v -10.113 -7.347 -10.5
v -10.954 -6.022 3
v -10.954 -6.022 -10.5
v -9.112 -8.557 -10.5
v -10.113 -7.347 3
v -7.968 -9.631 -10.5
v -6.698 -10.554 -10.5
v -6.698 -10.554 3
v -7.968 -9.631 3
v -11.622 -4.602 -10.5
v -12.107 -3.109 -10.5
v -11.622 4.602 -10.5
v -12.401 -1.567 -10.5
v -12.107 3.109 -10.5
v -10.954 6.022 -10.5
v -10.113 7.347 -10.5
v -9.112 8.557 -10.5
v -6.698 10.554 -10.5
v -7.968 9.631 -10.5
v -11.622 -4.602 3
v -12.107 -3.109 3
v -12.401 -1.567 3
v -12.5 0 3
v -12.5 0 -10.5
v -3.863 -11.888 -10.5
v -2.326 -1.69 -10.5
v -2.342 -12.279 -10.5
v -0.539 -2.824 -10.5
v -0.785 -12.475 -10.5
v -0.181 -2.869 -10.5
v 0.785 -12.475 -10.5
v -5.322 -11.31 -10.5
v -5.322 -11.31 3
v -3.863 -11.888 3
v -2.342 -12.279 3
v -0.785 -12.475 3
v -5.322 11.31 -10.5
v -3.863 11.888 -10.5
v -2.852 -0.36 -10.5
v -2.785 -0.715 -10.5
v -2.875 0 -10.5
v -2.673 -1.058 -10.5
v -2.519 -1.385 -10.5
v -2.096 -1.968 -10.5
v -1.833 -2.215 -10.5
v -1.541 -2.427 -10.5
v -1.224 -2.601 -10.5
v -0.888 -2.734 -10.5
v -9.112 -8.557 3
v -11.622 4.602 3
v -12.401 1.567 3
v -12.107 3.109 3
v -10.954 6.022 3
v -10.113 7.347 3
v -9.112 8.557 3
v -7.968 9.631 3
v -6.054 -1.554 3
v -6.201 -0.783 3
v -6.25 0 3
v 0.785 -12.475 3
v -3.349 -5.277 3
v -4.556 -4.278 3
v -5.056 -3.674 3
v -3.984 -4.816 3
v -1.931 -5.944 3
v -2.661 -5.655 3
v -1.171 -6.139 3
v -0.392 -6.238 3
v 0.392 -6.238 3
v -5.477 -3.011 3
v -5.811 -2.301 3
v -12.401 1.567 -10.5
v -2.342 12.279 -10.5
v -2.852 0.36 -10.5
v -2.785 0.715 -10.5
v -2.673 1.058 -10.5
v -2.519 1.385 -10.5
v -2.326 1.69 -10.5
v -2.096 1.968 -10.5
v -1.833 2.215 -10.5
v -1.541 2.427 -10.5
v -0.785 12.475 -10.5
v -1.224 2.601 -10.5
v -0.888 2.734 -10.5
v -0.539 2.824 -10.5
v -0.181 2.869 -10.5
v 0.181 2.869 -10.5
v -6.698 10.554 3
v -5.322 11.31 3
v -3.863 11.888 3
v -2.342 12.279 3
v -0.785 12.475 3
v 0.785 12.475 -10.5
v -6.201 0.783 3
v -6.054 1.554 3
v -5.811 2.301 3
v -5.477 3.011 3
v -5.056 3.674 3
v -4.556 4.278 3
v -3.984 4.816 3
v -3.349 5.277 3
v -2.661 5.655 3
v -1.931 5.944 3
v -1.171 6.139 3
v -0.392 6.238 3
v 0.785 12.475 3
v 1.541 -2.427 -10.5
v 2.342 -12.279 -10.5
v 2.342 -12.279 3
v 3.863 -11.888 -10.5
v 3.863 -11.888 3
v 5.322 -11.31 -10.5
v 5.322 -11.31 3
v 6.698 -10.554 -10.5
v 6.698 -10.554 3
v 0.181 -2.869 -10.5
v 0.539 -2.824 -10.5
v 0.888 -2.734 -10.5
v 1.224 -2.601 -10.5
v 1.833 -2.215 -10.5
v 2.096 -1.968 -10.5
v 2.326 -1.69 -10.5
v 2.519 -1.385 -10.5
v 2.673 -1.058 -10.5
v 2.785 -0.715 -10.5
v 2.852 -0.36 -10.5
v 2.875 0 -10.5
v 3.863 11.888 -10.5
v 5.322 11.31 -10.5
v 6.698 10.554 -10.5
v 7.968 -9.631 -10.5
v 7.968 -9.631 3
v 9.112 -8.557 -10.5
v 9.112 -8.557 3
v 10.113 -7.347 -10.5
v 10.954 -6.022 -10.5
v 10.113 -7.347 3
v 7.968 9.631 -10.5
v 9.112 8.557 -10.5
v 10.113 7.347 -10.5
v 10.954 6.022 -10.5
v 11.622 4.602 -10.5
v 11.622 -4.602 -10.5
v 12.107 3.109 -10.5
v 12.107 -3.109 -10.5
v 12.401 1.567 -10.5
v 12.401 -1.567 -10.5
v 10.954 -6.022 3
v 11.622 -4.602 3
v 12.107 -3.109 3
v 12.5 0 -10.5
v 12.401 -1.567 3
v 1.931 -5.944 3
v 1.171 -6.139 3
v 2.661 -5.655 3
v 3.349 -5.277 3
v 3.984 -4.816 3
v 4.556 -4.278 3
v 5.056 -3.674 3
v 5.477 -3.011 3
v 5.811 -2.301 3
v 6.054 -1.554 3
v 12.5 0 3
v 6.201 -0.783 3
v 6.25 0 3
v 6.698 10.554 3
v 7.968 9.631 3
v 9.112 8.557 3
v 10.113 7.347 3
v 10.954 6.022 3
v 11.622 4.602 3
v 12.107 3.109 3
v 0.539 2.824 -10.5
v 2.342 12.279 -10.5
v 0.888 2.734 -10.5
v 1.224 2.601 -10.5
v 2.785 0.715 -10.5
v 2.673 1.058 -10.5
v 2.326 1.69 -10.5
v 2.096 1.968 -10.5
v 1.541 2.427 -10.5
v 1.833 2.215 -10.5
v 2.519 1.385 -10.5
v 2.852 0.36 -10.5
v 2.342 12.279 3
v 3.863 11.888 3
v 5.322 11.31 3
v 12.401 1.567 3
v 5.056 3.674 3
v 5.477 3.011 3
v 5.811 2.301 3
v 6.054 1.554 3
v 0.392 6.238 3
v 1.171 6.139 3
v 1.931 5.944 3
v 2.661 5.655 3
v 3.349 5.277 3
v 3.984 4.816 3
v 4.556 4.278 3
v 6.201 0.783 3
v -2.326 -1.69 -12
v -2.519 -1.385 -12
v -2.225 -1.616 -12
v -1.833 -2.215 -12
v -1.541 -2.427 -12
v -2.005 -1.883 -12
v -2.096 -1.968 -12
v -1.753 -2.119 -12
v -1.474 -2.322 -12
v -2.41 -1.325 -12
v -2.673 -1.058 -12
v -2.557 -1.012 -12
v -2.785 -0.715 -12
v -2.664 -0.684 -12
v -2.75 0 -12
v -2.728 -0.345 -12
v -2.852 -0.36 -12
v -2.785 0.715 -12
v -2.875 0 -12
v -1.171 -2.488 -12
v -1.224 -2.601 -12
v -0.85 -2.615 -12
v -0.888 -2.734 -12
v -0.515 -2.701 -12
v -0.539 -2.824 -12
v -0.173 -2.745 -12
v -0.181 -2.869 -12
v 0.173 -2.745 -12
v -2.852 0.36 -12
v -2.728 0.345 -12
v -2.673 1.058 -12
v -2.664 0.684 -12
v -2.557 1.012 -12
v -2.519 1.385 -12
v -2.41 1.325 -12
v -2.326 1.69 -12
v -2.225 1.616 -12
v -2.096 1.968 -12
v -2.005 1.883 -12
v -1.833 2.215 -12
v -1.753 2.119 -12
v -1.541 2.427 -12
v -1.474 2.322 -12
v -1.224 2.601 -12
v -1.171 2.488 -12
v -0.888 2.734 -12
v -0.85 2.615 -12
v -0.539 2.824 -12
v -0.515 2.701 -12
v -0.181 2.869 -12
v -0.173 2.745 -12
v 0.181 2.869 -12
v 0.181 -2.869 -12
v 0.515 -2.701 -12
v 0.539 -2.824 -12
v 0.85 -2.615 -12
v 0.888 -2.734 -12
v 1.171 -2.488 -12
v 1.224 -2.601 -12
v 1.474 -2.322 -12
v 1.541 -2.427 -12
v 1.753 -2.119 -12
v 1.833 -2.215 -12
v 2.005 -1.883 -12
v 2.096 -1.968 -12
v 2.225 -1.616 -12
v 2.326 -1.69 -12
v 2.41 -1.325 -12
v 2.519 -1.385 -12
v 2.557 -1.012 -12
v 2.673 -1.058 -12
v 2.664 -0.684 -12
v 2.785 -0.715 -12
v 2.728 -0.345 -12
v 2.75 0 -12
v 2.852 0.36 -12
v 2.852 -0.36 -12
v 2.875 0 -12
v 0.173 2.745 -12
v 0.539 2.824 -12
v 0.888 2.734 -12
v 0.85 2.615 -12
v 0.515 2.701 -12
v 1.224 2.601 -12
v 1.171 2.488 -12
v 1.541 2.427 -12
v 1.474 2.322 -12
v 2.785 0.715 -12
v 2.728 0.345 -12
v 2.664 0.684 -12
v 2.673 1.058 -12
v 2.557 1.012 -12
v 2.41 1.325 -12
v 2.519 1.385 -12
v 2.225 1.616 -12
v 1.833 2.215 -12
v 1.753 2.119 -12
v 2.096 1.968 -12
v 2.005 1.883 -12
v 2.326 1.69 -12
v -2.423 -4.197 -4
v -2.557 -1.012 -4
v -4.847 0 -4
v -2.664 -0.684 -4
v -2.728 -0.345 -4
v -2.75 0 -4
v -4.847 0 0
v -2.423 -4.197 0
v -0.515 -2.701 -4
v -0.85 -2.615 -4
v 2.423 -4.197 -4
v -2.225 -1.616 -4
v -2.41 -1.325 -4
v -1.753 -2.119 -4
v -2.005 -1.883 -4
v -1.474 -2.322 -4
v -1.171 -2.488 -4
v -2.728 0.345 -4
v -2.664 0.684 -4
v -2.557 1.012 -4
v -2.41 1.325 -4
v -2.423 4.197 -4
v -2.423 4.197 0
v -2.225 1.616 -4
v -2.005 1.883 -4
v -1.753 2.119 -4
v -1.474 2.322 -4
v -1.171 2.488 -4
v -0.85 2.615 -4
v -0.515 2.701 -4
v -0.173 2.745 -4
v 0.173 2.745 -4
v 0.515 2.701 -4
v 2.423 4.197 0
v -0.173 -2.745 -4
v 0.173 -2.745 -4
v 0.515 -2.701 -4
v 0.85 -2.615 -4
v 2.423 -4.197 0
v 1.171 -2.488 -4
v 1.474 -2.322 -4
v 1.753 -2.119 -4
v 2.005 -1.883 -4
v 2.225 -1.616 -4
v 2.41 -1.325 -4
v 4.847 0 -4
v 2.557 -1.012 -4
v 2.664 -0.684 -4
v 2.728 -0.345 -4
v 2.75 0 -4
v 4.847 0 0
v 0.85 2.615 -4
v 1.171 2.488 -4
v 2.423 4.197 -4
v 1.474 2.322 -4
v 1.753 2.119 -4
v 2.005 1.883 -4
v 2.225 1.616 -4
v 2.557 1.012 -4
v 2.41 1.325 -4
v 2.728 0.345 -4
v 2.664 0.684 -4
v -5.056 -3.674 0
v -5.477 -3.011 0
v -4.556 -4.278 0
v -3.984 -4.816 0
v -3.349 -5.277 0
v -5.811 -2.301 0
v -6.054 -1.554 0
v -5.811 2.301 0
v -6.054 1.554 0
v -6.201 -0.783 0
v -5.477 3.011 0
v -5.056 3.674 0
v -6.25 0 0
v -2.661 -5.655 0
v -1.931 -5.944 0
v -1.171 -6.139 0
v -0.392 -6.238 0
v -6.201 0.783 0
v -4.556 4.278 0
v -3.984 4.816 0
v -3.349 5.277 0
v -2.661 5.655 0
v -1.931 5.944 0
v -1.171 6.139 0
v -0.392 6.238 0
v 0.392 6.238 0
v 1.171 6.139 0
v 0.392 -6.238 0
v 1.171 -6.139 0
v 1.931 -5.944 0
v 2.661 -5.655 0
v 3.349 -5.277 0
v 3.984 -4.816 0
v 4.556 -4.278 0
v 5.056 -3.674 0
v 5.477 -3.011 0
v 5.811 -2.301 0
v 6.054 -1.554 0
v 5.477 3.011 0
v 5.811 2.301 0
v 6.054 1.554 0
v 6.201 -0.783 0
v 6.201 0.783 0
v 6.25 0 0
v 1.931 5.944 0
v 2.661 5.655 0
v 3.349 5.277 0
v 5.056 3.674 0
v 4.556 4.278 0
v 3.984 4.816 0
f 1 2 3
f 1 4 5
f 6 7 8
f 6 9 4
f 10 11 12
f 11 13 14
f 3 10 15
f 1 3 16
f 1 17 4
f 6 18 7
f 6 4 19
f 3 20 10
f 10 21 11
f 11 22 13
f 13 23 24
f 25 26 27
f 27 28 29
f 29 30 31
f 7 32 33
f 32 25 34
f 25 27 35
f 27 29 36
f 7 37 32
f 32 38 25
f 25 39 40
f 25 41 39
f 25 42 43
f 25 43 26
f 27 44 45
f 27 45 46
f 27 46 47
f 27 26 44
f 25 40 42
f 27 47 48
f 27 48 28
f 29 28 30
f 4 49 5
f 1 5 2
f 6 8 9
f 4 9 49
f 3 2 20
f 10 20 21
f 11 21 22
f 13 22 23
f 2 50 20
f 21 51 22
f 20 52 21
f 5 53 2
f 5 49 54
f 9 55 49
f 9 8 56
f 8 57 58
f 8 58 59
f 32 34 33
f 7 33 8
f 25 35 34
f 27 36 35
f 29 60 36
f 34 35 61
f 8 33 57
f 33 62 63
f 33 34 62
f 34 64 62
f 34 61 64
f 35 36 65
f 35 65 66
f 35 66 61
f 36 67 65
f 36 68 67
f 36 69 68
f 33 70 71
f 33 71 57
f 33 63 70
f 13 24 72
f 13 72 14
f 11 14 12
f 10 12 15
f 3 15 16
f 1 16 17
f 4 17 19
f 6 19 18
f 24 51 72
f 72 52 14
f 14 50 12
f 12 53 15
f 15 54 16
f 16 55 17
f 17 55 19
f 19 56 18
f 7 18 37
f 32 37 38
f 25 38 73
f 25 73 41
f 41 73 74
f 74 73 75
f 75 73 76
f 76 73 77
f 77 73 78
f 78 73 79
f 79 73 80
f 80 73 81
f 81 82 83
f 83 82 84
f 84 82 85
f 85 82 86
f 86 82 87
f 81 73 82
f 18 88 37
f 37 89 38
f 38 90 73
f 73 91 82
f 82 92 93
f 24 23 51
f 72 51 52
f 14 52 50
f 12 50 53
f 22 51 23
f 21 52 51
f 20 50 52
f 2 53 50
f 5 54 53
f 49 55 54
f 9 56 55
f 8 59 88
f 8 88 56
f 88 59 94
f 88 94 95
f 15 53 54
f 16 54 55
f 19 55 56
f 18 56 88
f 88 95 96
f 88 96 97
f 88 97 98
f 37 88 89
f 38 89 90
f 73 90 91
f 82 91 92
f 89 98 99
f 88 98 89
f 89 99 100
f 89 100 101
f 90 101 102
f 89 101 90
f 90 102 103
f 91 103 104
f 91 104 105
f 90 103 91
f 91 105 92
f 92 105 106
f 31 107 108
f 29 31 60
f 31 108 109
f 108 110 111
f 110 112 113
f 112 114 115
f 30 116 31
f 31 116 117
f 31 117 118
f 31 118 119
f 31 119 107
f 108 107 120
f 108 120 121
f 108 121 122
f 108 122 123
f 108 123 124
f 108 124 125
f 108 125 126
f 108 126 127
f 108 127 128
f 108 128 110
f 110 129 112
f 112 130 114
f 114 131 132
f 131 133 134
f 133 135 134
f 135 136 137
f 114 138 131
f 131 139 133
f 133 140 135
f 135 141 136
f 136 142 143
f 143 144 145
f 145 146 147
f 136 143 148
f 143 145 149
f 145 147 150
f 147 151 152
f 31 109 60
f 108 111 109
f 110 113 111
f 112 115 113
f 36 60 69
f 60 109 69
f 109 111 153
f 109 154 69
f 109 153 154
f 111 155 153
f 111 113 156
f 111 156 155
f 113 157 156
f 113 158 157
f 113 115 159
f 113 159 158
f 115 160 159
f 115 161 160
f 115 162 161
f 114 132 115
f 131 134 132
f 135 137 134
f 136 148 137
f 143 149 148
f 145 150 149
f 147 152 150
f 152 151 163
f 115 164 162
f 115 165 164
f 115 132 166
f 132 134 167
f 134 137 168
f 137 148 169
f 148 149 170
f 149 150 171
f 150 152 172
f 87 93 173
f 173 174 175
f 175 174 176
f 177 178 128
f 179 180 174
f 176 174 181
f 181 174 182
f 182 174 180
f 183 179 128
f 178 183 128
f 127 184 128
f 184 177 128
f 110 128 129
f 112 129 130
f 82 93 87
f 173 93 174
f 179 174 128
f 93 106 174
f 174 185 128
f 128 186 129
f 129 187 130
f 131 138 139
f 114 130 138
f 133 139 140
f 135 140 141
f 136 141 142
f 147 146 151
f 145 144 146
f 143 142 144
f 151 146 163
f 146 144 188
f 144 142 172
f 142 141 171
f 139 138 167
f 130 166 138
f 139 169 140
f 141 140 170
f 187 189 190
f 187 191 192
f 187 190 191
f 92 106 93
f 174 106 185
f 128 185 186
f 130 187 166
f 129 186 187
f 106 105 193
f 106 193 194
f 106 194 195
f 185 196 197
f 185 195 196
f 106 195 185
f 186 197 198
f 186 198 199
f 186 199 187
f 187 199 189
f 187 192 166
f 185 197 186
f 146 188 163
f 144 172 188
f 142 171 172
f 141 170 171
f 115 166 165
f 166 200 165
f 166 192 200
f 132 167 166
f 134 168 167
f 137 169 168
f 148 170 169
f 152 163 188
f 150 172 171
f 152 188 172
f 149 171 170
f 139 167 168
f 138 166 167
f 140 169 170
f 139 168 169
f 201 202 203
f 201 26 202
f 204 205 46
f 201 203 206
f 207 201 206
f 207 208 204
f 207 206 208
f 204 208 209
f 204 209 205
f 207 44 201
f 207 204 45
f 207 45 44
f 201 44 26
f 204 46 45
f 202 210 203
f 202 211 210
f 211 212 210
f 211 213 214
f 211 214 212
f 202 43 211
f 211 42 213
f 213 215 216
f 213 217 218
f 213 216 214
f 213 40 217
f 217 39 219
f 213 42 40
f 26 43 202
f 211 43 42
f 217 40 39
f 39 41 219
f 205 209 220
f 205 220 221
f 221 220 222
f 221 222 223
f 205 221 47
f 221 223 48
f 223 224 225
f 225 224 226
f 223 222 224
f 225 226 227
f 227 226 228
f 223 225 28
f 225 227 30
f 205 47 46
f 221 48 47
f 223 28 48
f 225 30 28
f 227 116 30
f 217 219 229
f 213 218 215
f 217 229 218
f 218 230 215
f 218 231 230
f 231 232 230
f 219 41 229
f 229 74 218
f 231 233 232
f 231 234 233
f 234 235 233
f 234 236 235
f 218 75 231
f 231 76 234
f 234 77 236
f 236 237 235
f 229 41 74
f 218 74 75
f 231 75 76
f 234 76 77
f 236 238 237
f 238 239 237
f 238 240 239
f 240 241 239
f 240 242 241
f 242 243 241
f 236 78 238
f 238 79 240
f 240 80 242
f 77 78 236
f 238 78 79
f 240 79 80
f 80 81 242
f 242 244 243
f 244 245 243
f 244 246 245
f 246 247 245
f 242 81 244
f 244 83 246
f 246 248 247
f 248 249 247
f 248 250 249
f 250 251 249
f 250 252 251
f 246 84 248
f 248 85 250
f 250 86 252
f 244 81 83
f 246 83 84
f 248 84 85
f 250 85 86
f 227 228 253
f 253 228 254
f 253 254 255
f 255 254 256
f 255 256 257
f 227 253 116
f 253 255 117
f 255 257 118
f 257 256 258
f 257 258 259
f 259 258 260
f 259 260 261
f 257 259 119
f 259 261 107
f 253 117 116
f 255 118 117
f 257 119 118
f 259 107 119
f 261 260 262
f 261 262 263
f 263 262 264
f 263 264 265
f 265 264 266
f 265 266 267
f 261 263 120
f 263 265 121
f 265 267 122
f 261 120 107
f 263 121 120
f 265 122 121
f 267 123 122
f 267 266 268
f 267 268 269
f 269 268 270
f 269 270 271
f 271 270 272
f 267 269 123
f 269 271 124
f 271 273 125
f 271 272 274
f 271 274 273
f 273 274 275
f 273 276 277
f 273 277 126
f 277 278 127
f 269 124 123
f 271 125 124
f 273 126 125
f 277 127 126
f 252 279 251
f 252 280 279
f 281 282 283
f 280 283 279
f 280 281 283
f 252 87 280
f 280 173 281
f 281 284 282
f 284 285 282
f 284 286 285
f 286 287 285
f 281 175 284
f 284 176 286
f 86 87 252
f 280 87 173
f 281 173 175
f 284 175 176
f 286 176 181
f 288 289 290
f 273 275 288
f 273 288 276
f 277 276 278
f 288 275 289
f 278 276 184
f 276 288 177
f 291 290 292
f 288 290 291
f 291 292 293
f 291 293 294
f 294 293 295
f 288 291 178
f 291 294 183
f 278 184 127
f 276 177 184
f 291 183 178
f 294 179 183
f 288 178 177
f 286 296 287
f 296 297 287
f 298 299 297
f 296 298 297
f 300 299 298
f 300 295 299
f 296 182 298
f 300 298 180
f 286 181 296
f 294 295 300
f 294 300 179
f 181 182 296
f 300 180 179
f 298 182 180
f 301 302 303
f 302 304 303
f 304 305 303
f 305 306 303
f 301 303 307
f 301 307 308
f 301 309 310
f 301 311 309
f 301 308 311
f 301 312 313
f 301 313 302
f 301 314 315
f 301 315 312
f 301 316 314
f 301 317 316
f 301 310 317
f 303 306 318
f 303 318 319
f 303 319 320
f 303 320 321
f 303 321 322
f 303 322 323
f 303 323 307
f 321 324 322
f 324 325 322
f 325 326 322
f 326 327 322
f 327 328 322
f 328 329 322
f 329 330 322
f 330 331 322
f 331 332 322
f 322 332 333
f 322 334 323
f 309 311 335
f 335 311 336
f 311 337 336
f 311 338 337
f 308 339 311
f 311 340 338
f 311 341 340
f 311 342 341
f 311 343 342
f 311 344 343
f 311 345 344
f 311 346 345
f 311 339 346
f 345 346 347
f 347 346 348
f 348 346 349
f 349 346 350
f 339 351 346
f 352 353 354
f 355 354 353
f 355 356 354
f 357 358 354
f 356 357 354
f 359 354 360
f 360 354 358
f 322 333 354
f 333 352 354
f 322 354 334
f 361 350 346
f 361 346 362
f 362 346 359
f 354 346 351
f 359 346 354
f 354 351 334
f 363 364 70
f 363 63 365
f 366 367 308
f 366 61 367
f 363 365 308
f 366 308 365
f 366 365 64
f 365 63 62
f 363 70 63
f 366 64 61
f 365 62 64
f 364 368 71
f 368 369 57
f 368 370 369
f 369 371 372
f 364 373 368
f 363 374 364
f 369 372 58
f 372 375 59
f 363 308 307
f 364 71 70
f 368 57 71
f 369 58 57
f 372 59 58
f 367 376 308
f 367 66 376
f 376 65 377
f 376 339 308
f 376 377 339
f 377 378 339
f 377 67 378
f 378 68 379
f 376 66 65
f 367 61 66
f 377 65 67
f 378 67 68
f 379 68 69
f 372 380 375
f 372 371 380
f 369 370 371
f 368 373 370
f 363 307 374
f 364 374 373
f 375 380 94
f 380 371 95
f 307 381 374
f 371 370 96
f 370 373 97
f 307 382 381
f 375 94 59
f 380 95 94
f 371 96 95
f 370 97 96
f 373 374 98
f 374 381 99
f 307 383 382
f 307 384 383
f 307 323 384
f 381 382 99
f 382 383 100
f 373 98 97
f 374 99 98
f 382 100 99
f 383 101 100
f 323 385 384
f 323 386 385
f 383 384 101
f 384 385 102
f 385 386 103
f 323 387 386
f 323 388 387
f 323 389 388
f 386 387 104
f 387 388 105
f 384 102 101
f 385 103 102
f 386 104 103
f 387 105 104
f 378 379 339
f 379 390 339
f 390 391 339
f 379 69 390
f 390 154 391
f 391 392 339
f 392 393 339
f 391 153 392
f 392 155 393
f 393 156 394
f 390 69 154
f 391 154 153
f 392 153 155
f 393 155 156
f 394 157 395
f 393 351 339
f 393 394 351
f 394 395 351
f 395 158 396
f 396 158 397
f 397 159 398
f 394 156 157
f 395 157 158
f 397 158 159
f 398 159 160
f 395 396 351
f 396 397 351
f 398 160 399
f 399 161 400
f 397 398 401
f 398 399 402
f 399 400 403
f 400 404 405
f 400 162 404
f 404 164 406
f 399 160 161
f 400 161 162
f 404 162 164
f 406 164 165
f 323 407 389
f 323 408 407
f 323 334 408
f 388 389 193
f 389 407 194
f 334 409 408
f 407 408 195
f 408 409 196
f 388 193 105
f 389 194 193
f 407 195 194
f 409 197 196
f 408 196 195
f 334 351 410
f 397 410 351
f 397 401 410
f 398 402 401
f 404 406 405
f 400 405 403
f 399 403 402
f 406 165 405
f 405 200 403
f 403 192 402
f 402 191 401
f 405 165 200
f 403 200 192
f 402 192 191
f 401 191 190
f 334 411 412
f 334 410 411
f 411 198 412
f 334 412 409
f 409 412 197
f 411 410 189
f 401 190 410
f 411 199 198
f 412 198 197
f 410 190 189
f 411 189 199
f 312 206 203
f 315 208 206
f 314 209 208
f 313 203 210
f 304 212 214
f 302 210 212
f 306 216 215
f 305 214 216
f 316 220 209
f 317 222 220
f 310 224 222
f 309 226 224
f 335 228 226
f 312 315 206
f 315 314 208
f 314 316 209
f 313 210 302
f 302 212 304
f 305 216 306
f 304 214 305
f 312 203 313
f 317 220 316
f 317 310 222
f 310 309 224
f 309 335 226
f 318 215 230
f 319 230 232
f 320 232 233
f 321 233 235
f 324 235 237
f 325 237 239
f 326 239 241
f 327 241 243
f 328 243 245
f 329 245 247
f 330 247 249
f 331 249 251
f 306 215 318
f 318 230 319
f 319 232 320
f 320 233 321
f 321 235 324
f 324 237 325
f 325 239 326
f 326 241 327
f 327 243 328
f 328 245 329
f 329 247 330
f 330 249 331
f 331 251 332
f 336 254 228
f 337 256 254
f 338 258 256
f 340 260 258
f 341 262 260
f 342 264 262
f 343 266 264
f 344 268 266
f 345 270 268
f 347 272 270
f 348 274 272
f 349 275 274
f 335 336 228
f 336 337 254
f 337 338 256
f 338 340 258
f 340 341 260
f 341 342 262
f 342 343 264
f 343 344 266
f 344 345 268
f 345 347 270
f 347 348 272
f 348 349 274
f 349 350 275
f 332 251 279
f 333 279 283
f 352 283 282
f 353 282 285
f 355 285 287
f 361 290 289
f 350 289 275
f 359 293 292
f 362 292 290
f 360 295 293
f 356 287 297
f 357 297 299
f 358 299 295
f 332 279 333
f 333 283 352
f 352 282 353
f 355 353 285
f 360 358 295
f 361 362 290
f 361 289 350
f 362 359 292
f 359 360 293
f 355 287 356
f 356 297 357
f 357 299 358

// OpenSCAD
$fn = 50;

difference() {
	union() {
		translate(v = [0, 0, -10.5]) {
			cylinder(h = 13.5, r = 12.5);
		}
		#translate(v = [0, 0, -12.0]) {
			cylinder(h = 12, r = 2.875);
		}
	}
	union() {
		translate(v = [0, 0, 0]) {
			rotate(a = [0, 0, 0]) {
				difference() {
					union() {
						translate(v = [0, 0, -4]) {
							linear_extrude(height = 4) {
								polygon(points = [[4.8468, 0.0], [2.4234000000000004, 4.197451927062417], [-2.423399999999999, 4.197451927062417], [-4.8468, 5.935618106107392e-16], [-2.423400000000002, -4.197451927062416], [2.423399999999997, -4.197451927062419]]);
							}
						}
					}
					union();
				}
			}
		}
		#cylinder(h = 3, r = 6.25);
		#translate(v = [0, 0, -100.0]) {
			cylinder(h = 200, r = 2.75);
		}
	}
}
